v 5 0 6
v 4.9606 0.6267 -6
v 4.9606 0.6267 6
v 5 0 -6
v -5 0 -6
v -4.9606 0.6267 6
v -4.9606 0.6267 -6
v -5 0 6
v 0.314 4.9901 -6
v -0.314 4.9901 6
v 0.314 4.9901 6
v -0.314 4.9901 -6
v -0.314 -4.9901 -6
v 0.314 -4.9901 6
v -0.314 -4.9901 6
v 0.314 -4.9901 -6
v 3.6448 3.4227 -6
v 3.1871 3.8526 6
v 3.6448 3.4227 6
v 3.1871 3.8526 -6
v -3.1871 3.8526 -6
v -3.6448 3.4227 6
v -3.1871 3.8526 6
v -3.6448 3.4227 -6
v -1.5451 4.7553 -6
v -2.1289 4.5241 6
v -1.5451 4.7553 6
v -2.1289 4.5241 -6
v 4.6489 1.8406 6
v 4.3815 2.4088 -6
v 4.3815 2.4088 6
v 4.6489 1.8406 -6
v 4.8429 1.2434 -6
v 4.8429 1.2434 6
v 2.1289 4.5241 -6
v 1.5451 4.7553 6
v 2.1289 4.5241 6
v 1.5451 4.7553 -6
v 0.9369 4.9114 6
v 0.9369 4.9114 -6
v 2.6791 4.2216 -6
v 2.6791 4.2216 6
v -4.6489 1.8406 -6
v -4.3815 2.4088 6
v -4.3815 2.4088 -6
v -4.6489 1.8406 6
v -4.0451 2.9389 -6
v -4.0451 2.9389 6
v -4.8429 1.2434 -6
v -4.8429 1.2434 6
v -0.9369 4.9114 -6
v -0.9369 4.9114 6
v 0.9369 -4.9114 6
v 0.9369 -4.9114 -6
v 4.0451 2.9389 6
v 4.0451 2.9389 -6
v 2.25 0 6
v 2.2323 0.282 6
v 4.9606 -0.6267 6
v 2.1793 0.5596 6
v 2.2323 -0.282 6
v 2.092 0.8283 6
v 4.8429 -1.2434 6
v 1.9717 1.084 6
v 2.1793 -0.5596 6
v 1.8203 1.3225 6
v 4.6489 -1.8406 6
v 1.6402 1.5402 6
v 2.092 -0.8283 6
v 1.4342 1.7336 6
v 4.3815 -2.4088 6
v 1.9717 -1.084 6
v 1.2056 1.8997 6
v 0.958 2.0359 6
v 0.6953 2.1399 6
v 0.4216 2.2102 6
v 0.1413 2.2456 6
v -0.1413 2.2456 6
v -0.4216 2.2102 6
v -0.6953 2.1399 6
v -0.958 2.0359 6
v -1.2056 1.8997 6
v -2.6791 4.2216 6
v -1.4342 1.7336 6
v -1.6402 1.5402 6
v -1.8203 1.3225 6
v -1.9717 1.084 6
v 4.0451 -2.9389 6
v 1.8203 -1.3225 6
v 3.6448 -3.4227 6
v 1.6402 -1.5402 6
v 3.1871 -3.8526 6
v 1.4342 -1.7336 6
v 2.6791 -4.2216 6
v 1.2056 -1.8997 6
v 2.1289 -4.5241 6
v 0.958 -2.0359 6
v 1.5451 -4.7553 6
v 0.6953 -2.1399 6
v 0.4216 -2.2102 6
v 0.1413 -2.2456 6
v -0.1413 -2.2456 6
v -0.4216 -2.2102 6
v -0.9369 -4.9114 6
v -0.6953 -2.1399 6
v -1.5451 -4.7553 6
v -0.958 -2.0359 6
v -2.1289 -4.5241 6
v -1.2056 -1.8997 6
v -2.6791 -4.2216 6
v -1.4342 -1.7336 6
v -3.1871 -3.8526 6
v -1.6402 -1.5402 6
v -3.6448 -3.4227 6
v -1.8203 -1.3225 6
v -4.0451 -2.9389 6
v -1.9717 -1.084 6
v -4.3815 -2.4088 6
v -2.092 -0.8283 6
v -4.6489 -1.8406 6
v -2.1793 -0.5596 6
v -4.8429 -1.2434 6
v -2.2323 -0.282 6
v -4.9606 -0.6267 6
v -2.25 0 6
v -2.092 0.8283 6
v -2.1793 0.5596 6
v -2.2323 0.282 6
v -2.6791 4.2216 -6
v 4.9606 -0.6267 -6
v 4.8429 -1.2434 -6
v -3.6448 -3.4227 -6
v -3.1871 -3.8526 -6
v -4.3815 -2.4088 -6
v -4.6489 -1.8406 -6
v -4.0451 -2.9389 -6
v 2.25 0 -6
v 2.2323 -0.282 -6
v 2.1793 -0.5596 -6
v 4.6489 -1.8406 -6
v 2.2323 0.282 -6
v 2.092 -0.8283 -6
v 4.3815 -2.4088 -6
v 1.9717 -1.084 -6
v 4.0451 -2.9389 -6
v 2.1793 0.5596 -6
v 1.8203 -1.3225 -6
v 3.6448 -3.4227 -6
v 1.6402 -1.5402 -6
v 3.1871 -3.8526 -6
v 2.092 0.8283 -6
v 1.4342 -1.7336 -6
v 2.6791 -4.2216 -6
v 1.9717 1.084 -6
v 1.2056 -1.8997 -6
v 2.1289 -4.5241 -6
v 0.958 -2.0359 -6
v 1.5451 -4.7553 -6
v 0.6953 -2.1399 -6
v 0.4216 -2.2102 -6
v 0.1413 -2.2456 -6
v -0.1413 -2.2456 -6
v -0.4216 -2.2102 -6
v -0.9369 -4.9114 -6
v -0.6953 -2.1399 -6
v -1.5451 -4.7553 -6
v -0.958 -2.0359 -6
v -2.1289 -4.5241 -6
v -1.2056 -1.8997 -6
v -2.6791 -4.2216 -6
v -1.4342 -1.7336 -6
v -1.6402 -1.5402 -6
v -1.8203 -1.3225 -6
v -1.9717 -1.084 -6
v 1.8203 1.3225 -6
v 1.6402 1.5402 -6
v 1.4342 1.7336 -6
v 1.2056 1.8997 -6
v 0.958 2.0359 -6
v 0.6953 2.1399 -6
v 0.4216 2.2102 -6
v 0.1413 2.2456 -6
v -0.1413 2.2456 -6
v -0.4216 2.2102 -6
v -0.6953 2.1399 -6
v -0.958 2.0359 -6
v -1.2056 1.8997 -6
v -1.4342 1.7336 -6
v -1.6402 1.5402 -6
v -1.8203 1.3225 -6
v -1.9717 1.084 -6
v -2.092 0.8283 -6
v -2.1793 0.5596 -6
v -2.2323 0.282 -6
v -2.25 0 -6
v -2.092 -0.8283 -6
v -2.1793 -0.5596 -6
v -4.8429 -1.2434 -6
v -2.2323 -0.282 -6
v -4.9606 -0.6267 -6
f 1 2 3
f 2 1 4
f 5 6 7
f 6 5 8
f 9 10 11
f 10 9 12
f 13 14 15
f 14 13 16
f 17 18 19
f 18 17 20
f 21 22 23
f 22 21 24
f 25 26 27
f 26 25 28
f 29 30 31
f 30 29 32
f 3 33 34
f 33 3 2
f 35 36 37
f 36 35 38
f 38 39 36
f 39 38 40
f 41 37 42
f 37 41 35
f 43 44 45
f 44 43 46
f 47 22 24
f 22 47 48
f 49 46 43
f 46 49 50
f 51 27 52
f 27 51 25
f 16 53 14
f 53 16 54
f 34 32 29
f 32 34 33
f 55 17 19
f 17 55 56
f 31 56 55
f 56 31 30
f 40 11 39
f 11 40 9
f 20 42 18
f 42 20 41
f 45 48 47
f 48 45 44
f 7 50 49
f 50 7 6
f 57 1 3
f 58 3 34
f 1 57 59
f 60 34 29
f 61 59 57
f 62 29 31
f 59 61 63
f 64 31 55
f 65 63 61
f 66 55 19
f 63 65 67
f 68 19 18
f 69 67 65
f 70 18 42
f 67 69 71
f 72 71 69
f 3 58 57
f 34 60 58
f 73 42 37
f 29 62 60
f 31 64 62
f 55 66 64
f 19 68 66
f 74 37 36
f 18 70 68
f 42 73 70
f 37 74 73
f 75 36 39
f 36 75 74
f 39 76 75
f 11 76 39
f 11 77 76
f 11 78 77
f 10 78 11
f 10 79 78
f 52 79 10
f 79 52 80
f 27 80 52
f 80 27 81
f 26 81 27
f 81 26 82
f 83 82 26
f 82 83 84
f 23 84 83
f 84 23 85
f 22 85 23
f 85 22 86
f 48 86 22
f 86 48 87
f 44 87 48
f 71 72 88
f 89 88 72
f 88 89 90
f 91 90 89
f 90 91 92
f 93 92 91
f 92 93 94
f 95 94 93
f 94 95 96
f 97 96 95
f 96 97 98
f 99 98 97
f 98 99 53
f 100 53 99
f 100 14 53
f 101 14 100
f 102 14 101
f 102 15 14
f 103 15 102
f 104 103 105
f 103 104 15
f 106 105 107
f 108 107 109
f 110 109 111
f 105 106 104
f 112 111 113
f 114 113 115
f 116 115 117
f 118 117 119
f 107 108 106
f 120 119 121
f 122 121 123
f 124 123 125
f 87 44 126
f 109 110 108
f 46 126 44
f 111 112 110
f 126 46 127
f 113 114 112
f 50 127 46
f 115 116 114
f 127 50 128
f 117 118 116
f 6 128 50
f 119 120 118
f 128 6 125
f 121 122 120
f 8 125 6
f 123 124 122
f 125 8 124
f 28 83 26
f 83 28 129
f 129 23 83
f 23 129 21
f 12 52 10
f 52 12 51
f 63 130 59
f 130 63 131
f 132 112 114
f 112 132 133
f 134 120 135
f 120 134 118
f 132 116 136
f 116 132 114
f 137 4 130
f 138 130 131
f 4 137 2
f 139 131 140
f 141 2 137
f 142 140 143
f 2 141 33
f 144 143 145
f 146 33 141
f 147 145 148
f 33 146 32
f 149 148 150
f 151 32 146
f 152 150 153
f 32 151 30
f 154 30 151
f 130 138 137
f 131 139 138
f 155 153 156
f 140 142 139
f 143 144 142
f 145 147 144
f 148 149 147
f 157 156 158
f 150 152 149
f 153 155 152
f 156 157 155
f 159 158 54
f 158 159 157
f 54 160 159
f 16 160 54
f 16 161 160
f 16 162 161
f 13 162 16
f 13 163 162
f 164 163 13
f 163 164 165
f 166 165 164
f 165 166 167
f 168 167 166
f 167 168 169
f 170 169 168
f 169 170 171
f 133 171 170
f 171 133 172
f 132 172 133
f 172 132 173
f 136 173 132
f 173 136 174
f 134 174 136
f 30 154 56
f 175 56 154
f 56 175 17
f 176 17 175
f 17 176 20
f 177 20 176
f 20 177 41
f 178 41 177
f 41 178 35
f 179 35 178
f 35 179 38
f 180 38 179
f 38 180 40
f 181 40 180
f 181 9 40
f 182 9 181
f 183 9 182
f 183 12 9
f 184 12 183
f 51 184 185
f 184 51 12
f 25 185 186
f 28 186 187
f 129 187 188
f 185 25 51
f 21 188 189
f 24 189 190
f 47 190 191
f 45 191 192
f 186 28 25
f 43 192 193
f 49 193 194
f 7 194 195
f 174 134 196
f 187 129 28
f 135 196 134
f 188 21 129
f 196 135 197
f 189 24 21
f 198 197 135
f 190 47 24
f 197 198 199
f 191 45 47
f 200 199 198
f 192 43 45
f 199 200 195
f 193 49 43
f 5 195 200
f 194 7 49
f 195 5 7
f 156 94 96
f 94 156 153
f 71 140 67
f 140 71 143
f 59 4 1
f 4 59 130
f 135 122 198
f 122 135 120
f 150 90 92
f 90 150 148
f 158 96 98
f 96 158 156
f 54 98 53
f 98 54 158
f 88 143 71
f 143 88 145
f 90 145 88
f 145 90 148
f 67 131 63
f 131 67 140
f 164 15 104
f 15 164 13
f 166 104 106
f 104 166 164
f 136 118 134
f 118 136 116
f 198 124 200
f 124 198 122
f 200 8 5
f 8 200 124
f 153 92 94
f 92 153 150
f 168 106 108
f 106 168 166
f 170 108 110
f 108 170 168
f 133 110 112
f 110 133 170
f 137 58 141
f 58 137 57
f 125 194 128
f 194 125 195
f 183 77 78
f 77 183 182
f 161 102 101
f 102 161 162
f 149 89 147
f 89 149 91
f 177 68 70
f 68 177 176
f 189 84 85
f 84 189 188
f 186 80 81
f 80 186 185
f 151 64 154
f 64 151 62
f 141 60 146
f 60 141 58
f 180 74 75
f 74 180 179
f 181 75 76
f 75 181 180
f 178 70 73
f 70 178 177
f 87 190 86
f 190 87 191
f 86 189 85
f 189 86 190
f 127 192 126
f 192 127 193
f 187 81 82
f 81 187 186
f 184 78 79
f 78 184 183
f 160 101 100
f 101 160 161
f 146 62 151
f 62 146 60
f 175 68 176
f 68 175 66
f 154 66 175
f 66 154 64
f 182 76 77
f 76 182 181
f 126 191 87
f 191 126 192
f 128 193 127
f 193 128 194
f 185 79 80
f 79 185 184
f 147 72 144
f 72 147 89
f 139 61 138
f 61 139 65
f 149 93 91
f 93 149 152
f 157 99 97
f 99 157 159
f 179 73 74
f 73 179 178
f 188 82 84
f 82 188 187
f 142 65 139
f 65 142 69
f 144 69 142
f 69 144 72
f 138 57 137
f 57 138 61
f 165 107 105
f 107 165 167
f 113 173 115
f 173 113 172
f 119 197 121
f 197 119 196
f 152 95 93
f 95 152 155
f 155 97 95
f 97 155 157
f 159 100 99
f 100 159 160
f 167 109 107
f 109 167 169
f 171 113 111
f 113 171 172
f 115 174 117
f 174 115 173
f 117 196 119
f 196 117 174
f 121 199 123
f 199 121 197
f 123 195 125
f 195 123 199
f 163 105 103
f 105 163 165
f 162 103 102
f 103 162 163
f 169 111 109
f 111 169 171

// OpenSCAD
$fn = 50;


difference() {
	union() {
		translate(v = [0, 0, -6.0000000000]) {
			cylinder(h = 12, r = 5.0000000000);
		}
	}
	union() {
		translate(v = [0, 0, -100.0000000000]) {
			cylinder(h = 200, r = 2.2500000000);
		}
	}
}
